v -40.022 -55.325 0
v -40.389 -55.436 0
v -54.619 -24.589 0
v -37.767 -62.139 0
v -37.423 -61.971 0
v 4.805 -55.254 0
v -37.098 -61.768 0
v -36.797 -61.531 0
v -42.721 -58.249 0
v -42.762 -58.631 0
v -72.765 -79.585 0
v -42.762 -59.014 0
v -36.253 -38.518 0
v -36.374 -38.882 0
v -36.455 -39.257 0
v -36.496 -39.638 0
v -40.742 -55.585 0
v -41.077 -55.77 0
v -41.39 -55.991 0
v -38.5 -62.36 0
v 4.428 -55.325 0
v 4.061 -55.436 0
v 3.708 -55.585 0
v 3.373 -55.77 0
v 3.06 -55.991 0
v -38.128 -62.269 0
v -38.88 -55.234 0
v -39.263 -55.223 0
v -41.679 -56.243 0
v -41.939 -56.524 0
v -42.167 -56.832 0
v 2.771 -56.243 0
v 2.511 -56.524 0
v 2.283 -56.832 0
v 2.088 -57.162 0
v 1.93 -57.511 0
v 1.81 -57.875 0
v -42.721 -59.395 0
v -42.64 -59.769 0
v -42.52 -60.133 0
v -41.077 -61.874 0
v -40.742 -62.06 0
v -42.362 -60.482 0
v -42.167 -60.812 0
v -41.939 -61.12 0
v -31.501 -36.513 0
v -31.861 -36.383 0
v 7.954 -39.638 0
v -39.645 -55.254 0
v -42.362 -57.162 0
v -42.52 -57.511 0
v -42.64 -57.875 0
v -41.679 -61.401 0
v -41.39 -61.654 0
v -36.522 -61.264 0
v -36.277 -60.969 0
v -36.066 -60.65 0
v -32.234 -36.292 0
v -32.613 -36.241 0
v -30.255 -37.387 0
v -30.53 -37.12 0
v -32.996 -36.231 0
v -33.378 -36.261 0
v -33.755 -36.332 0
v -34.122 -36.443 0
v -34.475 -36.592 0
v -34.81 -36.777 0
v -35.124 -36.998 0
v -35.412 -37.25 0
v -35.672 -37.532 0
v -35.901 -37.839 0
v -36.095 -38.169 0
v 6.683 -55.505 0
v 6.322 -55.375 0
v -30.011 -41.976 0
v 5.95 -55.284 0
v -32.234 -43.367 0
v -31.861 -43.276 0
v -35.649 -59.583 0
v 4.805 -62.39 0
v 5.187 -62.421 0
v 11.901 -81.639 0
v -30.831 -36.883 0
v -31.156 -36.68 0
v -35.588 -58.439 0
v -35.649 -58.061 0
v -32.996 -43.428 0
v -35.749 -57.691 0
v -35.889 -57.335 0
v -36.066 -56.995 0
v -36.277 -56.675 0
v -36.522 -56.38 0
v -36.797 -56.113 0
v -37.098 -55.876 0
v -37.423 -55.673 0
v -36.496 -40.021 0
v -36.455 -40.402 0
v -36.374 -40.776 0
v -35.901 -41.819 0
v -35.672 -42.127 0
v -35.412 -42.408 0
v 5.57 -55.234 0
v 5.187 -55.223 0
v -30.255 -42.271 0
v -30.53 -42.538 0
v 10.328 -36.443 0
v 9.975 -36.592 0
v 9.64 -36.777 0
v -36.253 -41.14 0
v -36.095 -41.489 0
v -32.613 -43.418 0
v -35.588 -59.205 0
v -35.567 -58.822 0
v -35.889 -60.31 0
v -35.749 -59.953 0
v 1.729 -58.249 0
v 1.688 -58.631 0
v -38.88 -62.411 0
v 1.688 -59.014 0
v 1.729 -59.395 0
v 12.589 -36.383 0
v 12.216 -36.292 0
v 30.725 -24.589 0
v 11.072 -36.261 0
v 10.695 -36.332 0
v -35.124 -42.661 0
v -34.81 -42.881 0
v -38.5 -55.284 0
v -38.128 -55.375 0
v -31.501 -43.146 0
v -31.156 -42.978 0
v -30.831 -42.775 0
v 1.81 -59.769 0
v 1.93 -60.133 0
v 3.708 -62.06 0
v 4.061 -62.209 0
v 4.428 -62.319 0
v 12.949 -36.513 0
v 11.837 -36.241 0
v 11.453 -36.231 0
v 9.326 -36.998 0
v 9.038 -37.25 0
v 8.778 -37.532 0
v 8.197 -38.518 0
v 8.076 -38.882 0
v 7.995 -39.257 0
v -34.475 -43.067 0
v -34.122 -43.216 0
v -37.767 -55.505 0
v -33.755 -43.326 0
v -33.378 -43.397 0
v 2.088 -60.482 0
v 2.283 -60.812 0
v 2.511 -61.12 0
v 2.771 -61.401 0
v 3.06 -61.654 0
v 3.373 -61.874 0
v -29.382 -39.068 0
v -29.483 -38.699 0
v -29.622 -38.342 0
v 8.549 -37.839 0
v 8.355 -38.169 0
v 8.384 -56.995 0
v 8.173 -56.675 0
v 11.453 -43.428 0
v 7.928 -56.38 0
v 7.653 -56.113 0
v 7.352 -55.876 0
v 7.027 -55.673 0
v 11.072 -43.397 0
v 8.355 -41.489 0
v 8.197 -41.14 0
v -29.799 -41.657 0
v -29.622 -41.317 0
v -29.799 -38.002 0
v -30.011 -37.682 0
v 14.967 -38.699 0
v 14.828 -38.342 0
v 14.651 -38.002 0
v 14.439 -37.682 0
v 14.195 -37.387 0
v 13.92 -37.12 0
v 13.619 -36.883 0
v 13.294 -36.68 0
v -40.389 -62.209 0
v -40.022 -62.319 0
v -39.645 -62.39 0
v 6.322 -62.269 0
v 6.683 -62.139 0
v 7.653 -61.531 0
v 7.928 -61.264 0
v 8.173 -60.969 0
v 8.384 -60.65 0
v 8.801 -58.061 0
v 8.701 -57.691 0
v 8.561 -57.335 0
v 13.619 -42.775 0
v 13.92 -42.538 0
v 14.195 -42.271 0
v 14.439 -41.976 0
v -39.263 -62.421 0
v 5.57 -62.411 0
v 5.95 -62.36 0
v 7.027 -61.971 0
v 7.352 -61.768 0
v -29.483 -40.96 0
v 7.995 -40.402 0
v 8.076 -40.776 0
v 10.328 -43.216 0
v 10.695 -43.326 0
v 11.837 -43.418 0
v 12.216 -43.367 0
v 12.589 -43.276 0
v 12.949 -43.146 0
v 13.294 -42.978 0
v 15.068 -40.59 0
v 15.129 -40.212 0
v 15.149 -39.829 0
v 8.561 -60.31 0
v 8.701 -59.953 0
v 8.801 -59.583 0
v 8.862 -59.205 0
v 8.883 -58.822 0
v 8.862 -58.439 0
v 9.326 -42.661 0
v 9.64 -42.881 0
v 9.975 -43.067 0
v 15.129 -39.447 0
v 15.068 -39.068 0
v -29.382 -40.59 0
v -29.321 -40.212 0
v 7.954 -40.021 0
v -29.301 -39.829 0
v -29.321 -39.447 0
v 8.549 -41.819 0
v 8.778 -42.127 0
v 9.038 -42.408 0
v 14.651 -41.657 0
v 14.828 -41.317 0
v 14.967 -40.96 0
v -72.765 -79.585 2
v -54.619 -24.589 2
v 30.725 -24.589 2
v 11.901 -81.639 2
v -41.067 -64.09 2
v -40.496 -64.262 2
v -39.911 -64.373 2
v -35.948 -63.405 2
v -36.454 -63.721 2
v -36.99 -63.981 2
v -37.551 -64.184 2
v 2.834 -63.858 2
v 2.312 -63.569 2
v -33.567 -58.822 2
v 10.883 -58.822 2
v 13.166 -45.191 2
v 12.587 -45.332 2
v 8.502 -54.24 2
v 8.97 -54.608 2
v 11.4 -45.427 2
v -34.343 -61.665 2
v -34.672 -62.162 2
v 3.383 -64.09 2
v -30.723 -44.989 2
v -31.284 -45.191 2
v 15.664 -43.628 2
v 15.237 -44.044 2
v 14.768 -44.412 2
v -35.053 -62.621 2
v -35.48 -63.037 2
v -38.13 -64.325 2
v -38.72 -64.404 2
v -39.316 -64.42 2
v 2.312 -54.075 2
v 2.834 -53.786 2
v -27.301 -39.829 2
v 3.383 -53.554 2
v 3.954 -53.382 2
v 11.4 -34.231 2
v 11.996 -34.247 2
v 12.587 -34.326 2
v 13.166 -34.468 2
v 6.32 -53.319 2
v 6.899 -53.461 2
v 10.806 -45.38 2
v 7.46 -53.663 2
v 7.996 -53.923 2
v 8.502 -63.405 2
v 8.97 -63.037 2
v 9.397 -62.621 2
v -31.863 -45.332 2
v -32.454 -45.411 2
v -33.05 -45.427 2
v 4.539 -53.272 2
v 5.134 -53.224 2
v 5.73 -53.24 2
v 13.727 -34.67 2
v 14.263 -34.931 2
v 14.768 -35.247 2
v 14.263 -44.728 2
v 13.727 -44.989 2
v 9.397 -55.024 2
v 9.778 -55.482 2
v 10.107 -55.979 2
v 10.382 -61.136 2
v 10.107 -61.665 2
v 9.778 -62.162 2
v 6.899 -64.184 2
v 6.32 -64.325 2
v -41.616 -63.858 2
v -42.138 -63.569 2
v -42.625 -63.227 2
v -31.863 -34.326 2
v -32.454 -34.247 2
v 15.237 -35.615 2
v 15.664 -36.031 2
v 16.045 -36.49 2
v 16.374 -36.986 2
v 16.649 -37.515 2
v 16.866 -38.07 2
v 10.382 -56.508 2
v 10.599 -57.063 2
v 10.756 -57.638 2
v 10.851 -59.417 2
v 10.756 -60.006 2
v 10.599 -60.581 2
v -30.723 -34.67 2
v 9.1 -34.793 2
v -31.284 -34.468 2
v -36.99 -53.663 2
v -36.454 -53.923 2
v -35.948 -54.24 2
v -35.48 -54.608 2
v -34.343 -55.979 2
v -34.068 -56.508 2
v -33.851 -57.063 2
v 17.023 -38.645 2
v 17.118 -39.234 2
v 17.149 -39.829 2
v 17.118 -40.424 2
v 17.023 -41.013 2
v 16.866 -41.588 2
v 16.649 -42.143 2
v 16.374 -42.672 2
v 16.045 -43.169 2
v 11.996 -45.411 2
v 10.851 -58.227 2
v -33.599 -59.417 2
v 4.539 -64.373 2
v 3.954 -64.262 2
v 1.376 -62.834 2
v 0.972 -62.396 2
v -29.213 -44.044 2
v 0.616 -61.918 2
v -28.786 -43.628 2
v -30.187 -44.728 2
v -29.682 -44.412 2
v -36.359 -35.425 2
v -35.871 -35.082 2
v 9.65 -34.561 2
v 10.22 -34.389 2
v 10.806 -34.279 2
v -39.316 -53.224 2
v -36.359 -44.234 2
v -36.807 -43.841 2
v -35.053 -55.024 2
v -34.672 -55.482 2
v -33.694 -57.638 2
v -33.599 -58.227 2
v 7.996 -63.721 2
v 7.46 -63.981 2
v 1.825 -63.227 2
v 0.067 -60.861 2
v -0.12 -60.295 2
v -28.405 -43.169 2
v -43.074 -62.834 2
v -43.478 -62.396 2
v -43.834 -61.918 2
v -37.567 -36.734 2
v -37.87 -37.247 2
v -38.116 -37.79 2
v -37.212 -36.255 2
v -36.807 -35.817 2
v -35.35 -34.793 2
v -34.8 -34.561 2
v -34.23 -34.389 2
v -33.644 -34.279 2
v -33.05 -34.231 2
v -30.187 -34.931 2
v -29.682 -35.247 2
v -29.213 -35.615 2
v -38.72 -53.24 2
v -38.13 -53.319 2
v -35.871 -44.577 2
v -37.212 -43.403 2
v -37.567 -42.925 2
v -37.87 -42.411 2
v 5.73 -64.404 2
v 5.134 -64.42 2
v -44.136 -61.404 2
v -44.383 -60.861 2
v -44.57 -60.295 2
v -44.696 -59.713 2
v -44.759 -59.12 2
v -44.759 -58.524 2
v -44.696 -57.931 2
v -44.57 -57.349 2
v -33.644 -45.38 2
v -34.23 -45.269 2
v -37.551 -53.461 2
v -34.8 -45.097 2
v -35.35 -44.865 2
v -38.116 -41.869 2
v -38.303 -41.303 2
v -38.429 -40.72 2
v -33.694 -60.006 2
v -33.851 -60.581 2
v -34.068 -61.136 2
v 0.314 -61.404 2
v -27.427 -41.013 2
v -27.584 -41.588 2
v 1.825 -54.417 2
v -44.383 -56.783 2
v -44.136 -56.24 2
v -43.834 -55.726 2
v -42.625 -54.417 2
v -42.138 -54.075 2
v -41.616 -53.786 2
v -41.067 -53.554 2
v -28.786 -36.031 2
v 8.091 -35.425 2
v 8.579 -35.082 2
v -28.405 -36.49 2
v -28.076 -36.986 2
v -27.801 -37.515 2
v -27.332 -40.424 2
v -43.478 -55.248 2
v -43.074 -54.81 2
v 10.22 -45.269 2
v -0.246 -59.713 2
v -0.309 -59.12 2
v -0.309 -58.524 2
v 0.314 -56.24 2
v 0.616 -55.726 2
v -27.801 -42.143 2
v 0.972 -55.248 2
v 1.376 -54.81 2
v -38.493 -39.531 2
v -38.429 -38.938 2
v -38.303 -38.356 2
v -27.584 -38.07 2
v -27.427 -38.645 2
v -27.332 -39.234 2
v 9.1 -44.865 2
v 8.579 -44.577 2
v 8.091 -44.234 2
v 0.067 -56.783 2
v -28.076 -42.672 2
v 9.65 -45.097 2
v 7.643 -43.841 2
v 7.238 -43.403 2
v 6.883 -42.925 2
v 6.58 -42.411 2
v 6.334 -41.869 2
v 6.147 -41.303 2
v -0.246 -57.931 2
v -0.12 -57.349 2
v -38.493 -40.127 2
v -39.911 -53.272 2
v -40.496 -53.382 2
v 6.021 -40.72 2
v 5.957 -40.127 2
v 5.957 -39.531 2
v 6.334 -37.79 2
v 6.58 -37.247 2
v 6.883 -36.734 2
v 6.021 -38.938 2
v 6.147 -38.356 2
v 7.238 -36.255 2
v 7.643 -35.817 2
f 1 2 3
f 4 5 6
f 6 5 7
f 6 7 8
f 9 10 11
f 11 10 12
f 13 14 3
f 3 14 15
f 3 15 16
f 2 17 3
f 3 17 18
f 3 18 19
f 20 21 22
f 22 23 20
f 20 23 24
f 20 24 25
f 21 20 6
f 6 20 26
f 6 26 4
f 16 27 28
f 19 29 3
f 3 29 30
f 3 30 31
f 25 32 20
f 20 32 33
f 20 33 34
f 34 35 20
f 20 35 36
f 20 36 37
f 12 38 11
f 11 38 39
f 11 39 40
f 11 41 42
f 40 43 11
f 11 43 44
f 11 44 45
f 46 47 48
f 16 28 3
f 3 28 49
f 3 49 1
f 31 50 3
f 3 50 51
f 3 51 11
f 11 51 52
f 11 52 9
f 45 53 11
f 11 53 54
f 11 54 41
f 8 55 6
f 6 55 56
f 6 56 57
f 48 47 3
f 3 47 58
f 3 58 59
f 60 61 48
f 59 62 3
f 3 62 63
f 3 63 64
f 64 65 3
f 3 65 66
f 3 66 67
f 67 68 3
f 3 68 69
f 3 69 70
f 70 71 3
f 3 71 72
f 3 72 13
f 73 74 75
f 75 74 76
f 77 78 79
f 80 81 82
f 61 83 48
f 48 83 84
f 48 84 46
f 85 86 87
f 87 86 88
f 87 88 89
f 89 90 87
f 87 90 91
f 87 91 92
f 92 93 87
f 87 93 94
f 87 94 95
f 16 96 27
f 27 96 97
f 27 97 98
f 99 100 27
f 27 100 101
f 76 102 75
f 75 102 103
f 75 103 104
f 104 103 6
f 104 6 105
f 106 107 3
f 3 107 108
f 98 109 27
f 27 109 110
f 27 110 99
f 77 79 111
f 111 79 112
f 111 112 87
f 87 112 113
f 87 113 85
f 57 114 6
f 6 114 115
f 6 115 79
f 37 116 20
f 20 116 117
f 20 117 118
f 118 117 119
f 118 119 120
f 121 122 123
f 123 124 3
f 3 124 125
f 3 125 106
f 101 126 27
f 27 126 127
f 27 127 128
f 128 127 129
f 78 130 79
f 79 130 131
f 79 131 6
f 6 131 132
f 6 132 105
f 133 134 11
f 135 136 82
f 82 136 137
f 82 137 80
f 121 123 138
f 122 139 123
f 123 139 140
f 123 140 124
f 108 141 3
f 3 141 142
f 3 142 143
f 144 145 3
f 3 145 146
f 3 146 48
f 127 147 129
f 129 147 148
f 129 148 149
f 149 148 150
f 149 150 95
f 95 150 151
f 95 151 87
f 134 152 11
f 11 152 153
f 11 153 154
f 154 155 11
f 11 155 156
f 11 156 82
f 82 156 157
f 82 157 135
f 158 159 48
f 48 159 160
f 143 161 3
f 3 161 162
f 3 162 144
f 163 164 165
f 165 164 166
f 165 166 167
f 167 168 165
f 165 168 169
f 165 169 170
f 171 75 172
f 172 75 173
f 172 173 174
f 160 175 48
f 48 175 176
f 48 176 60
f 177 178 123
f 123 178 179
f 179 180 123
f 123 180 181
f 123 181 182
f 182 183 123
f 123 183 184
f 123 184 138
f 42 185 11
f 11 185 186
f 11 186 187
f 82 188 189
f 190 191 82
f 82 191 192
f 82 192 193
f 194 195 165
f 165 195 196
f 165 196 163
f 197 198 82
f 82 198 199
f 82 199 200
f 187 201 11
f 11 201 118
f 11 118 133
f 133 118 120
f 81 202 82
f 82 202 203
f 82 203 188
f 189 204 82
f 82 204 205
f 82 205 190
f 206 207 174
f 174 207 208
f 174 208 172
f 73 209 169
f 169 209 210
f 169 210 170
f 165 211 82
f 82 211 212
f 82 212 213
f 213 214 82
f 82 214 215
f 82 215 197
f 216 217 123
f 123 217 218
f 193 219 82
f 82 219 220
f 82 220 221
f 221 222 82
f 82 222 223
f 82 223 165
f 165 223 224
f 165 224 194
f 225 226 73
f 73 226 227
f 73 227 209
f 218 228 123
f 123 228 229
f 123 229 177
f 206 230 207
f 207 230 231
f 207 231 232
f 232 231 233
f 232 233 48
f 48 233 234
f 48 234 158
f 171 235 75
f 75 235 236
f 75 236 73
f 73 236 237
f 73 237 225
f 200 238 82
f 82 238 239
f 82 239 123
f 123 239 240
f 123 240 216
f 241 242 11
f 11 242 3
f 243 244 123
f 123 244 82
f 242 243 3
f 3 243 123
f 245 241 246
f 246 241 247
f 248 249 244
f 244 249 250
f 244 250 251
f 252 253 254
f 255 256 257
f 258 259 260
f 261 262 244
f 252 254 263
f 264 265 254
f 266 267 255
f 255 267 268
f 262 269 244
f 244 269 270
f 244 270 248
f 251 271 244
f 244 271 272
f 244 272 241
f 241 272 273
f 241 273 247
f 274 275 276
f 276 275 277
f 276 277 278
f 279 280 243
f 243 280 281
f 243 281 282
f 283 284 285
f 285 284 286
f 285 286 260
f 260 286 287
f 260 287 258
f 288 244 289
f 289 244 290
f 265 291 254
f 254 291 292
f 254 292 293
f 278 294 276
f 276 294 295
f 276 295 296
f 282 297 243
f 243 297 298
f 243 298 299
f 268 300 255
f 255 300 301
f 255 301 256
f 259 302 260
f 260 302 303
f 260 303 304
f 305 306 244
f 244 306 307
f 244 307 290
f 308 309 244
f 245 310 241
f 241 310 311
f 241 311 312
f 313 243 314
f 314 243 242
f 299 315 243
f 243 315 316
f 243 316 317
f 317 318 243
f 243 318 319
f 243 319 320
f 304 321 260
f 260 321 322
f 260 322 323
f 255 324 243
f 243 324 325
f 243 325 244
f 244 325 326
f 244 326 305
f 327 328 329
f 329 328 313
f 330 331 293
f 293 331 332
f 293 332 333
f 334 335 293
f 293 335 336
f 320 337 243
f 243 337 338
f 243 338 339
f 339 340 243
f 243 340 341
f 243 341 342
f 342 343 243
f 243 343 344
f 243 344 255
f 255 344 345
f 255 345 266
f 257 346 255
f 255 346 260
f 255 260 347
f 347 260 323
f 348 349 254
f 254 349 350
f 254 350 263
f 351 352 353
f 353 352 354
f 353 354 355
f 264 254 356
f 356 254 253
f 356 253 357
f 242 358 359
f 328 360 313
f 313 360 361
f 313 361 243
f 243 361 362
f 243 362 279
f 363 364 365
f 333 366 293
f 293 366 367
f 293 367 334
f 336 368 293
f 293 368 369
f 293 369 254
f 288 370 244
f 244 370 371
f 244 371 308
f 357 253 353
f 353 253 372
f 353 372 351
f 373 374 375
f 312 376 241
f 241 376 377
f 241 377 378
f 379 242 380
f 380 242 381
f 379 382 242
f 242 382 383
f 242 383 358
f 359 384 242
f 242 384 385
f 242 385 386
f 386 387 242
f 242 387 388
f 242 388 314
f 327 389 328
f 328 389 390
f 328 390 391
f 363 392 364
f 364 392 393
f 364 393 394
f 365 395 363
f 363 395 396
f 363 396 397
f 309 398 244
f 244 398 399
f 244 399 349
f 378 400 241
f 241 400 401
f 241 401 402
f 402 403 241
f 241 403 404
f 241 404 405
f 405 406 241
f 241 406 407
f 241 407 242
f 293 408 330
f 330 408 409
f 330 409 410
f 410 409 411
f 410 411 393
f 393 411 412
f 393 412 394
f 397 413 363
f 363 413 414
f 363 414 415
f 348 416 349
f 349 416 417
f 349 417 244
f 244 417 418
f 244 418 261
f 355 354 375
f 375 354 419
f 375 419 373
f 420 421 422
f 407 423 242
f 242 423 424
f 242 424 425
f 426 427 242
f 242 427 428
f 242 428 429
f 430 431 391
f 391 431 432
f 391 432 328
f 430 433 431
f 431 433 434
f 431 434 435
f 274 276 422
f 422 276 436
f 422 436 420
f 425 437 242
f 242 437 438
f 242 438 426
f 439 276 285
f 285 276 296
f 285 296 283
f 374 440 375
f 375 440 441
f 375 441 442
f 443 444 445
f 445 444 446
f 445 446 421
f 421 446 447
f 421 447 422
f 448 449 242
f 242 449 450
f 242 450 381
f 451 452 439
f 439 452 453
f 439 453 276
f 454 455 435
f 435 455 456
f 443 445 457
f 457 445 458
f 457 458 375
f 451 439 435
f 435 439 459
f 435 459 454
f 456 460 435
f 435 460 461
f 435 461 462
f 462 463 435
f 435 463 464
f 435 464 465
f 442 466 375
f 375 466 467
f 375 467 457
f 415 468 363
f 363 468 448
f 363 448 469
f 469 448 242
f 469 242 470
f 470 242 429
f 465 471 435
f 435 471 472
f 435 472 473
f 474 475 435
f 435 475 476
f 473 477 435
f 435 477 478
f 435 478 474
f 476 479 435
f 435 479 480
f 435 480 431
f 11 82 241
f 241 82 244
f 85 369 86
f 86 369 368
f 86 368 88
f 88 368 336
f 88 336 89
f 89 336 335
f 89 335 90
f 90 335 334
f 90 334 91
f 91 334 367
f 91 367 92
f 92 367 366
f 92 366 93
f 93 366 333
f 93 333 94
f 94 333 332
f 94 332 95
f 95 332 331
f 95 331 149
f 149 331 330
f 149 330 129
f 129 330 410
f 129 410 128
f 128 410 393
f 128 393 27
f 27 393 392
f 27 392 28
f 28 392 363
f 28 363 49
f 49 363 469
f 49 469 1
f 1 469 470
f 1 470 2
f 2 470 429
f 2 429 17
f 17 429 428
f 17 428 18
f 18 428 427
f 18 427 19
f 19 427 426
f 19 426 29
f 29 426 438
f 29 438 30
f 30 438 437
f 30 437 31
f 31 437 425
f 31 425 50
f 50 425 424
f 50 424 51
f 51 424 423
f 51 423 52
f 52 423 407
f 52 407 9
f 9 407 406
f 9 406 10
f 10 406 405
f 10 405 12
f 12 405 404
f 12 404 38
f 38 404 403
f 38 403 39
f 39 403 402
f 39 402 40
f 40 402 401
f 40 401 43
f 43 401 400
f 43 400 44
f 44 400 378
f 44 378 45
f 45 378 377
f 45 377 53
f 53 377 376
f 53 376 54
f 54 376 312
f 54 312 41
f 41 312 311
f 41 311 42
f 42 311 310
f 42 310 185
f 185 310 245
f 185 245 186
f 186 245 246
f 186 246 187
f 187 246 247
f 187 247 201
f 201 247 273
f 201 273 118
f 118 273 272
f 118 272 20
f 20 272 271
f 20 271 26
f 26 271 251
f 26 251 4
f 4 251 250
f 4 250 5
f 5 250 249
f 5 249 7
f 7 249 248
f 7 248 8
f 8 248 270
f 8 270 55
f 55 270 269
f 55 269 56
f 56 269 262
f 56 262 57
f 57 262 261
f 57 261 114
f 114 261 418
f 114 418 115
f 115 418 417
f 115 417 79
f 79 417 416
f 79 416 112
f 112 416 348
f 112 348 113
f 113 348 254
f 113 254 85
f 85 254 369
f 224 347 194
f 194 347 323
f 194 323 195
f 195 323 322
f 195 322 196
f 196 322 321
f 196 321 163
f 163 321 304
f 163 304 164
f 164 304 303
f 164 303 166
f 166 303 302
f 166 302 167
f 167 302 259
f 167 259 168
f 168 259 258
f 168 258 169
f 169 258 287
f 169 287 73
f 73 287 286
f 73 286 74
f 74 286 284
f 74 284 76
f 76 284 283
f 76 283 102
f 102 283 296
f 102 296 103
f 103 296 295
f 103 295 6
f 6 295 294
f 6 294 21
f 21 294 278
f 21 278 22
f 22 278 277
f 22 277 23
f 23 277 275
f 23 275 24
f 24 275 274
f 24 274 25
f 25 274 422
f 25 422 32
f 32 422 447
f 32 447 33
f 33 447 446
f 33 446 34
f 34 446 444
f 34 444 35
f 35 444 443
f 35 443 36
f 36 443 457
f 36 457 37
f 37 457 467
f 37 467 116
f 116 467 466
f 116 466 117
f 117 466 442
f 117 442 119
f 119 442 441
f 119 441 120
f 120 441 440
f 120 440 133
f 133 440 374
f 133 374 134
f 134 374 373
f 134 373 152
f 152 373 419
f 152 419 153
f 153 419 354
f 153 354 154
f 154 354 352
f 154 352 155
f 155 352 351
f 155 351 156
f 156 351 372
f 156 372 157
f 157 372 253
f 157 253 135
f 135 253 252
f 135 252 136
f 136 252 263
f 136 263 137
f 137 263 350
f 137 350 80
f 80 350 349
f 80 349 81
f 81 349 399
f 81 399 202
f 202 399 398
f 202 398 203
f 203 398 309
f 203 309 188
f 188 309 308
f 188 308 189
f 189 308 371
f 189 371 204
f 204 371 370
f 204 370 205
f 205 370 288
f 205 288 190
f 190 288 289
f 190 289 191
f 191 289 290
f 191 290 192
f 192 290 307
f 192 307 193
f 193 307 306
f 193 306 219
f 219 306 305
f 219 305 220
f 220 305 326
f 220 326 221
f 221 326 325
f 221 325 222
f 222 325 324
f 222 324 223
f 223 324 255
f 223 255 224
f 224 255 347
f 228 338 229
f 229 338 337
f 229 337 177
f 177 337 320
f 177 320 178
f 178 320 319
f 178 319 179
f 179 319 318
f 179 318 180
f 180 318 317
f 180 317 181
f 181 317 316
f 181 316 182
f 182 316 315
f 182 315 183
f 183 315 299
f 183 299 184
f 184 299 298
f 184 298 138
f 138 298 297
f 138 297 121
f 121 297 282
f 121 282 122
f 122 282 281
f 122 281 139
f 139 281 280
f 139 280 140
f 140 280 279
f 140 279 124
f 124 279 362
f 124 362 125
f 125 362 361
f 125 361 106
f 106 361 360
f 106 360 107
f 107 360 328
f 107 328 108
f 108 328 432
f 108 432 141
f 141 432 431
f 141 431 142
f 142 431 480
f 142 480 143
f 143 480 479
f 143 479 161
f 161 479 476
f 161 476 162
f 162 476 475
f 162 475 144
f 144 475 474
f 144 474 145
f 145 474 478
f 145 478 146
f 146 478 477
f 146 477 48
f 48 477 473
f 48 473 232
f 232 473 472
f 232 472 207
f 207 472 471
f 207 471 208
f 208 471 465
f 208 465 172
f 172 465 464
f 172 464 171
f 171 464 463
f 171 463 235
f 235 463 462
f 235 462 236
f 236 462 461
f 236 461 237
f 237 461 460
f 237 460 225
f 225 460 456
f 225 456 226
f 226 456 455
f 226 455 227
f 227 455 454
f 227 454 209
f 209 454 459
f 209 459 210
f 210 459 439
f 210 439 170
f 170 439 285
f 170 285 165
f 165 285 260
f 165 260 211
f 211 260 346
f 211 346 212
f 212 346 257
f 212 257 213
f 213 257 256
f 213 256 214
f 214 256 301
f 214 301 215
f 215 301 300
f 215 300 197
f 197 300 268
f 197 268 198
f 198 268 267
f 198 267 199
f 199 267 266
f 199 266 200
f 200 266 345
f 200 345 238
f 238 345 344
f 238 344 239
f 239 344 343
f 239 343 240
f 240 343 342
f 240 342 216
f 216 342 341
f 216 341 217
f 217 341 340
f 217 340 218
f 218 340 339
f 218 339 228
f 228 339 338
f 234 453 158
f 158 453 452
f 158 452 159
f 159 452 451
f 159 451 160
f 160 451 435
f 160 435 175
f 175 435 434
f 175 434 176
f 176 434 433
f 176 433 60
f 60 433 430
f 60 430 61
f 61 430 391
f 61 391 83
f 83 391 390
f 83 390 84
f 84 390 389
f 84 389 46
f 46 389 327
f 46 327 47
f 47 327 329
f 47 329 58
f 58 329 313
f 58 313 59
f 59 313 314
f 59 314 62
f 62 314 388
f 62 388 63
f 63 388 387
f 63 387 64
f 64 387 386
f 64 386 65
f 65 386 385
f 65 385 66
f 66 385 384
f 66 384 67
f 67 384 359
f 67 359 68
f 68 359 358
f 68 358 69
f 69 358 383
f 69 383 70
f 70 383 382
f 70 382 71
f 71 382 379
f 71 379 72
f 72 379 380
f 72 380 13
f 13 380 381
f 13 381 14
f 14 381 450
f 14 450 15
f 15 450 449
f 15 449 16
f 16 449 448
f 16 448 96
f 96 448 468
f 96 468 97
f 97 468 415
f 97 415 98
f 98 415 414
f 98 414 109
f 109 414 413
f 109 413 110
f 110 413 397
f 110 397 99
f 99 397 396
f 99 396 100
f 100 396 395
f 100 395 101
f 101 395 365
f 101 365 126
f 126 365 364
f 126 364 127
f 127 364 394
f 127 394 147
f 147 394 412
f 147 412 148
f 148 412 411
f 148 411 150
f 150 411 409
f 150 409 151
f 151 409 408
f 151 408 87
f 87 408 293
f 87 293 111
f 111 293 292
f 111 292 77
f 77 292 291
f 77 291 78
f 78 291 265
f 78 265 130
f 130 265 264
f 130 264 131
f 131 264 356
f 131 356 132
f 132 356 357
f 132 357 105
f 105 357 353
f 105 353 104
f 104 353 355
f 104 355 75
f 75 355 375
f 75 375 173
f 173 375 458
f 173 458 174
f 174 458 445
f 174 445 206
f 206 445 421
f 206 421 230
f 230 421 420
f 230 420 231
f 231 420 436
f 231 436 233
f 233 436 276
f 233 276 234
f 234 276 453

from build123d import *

# Parameters (mm, degrees)
BOSS_EXTRUDE1_DEPTH          = 2
BOSS_EXTRUDE2_DEPTH          = 2
SKETCH4_R                    = 2.5
CUT_EXTRUDE2_DEPTH           = 2
CSK_FOR_M5_SFHCS1_AT_2_COUNT = 2
CSK_FOR_M5_SFHCS1_AT_2_PITCH = 44.45
CSK_FOR_M5_SFHCS1_AT_3_COUNT = 2
CSK_FOR_M5_SFHCS1_AT_3_PITCH = 42.64624896
CSK_FOR_M5_SFHCS1_AT_4_COUNT = 2
CSK_FOR_M5_SFHCS1_AT_4_PITCH = 20


with BuildPart() as part:
    # Sketch2 → Boss-Extrude1 (new body)
    with BuildSketch(Plane.XY):
        Polygon((-54.61917065, -24.589230235), (30.72482935, -24.589230235), (13.852659447, -75.725684813), (-71.491340553, -75.725684813), align=None)
    extrude(amount=BOSS_EXTRUDE1_DEPTH)

    # Sketch3 → Boss-Extrude2 (add)
    with BuildSketch(Plane.XY.offset(2)):
        Polygon((-72.764711867, -79.585039875), (11.90144755, -81.639450446), (13.852659447, -75.725684813), (-71.491340553, -75.725684813), align=None)
    extrude(amount=-BOSS_EXTRUDE2_DEPTH)

    # Sketch4 → Cut-Extrude2 (cut)
    with BuildSketch(Plane.XY.offset(2)):
        with Locations((-32.900665919, -39.829230235)):
            Circle(SKETCH4_R)
        with Locations((11.549334081, -39.829230235)):
            Circle(SKETCH4_R)
        with Locations((5.282742972, -58.822119322)):
            Circle(SKETCH4_R)
        with Locations((-39.167257028, -58.822119322)):
            Circle(SKETCH4_R)
    extrude(amount=-CUT_EXTRUDE2_DEPTH, mode=Mode.SUBTRACT)

    # Sketch6 → CSK for M5 SFHCS1 (revolve, cut)
    with BuildSketch(Plane(origin=(-32.900665919, -39.829230235, 2), x_dir=(0, -1, 0), z_dir=(1, 0, 0))):
        Polygon((0, 0), (0, 2), (2.75, 2), (2.75, 2.85), (5.6, 0), align=None)
    csk_for_m5_sfhcs1 = revolve(axis=Axis((-32.900665919, -39.829230235, 8.35), (0, 0, -1)), mode=Mode.SUBTRACT)

    # CSK for M5 SFHCS1 at 2: CSK for M5 SFHCS1 ×2
    with Locations(*[(i * CSK_FOR_M5_SFHCS1_AT_2_PITCH, 0, 0) for i in range(1, CSK_FOR_M5_SFHCS1_AT_2_COUNT)]):
        add(csk_for_m5_sfhcs1, mode=Mode.SUBTRACT)

    # CSK for M5 SFHCS1 at 3: CSK for M5 SFHCS1 ×2
    with Locations(*[Vector(0.8953521076667903, -0.44535896004979675, 0) * (i * CSK_FOR_M5_SFHCS1_AT_3_PITCH) for i in range(1, CSK_FOR_M5_SFHCS1_AT_3_COUNT)]):
        add(csk_for_m5_sfhcs1, mode=Mode.SUBTRACT)

    # CSK for M5 SFHCS1 at 4: CSK for M5 SFHCS1 ×2
    with Locations(*[Vector(-0.31332955547970925, -0.9496444543421964, 0) * (i * CSK_FOR_M5_SFHCS1_AT_4_PITCH) for i in range(1, CSK_FOR_M5_SFHCS1_AT_4_COUNT)]):
        add(csk_for_m5_sfhcs1, mode=Mode.SUBTRACT)


solid = part.part
